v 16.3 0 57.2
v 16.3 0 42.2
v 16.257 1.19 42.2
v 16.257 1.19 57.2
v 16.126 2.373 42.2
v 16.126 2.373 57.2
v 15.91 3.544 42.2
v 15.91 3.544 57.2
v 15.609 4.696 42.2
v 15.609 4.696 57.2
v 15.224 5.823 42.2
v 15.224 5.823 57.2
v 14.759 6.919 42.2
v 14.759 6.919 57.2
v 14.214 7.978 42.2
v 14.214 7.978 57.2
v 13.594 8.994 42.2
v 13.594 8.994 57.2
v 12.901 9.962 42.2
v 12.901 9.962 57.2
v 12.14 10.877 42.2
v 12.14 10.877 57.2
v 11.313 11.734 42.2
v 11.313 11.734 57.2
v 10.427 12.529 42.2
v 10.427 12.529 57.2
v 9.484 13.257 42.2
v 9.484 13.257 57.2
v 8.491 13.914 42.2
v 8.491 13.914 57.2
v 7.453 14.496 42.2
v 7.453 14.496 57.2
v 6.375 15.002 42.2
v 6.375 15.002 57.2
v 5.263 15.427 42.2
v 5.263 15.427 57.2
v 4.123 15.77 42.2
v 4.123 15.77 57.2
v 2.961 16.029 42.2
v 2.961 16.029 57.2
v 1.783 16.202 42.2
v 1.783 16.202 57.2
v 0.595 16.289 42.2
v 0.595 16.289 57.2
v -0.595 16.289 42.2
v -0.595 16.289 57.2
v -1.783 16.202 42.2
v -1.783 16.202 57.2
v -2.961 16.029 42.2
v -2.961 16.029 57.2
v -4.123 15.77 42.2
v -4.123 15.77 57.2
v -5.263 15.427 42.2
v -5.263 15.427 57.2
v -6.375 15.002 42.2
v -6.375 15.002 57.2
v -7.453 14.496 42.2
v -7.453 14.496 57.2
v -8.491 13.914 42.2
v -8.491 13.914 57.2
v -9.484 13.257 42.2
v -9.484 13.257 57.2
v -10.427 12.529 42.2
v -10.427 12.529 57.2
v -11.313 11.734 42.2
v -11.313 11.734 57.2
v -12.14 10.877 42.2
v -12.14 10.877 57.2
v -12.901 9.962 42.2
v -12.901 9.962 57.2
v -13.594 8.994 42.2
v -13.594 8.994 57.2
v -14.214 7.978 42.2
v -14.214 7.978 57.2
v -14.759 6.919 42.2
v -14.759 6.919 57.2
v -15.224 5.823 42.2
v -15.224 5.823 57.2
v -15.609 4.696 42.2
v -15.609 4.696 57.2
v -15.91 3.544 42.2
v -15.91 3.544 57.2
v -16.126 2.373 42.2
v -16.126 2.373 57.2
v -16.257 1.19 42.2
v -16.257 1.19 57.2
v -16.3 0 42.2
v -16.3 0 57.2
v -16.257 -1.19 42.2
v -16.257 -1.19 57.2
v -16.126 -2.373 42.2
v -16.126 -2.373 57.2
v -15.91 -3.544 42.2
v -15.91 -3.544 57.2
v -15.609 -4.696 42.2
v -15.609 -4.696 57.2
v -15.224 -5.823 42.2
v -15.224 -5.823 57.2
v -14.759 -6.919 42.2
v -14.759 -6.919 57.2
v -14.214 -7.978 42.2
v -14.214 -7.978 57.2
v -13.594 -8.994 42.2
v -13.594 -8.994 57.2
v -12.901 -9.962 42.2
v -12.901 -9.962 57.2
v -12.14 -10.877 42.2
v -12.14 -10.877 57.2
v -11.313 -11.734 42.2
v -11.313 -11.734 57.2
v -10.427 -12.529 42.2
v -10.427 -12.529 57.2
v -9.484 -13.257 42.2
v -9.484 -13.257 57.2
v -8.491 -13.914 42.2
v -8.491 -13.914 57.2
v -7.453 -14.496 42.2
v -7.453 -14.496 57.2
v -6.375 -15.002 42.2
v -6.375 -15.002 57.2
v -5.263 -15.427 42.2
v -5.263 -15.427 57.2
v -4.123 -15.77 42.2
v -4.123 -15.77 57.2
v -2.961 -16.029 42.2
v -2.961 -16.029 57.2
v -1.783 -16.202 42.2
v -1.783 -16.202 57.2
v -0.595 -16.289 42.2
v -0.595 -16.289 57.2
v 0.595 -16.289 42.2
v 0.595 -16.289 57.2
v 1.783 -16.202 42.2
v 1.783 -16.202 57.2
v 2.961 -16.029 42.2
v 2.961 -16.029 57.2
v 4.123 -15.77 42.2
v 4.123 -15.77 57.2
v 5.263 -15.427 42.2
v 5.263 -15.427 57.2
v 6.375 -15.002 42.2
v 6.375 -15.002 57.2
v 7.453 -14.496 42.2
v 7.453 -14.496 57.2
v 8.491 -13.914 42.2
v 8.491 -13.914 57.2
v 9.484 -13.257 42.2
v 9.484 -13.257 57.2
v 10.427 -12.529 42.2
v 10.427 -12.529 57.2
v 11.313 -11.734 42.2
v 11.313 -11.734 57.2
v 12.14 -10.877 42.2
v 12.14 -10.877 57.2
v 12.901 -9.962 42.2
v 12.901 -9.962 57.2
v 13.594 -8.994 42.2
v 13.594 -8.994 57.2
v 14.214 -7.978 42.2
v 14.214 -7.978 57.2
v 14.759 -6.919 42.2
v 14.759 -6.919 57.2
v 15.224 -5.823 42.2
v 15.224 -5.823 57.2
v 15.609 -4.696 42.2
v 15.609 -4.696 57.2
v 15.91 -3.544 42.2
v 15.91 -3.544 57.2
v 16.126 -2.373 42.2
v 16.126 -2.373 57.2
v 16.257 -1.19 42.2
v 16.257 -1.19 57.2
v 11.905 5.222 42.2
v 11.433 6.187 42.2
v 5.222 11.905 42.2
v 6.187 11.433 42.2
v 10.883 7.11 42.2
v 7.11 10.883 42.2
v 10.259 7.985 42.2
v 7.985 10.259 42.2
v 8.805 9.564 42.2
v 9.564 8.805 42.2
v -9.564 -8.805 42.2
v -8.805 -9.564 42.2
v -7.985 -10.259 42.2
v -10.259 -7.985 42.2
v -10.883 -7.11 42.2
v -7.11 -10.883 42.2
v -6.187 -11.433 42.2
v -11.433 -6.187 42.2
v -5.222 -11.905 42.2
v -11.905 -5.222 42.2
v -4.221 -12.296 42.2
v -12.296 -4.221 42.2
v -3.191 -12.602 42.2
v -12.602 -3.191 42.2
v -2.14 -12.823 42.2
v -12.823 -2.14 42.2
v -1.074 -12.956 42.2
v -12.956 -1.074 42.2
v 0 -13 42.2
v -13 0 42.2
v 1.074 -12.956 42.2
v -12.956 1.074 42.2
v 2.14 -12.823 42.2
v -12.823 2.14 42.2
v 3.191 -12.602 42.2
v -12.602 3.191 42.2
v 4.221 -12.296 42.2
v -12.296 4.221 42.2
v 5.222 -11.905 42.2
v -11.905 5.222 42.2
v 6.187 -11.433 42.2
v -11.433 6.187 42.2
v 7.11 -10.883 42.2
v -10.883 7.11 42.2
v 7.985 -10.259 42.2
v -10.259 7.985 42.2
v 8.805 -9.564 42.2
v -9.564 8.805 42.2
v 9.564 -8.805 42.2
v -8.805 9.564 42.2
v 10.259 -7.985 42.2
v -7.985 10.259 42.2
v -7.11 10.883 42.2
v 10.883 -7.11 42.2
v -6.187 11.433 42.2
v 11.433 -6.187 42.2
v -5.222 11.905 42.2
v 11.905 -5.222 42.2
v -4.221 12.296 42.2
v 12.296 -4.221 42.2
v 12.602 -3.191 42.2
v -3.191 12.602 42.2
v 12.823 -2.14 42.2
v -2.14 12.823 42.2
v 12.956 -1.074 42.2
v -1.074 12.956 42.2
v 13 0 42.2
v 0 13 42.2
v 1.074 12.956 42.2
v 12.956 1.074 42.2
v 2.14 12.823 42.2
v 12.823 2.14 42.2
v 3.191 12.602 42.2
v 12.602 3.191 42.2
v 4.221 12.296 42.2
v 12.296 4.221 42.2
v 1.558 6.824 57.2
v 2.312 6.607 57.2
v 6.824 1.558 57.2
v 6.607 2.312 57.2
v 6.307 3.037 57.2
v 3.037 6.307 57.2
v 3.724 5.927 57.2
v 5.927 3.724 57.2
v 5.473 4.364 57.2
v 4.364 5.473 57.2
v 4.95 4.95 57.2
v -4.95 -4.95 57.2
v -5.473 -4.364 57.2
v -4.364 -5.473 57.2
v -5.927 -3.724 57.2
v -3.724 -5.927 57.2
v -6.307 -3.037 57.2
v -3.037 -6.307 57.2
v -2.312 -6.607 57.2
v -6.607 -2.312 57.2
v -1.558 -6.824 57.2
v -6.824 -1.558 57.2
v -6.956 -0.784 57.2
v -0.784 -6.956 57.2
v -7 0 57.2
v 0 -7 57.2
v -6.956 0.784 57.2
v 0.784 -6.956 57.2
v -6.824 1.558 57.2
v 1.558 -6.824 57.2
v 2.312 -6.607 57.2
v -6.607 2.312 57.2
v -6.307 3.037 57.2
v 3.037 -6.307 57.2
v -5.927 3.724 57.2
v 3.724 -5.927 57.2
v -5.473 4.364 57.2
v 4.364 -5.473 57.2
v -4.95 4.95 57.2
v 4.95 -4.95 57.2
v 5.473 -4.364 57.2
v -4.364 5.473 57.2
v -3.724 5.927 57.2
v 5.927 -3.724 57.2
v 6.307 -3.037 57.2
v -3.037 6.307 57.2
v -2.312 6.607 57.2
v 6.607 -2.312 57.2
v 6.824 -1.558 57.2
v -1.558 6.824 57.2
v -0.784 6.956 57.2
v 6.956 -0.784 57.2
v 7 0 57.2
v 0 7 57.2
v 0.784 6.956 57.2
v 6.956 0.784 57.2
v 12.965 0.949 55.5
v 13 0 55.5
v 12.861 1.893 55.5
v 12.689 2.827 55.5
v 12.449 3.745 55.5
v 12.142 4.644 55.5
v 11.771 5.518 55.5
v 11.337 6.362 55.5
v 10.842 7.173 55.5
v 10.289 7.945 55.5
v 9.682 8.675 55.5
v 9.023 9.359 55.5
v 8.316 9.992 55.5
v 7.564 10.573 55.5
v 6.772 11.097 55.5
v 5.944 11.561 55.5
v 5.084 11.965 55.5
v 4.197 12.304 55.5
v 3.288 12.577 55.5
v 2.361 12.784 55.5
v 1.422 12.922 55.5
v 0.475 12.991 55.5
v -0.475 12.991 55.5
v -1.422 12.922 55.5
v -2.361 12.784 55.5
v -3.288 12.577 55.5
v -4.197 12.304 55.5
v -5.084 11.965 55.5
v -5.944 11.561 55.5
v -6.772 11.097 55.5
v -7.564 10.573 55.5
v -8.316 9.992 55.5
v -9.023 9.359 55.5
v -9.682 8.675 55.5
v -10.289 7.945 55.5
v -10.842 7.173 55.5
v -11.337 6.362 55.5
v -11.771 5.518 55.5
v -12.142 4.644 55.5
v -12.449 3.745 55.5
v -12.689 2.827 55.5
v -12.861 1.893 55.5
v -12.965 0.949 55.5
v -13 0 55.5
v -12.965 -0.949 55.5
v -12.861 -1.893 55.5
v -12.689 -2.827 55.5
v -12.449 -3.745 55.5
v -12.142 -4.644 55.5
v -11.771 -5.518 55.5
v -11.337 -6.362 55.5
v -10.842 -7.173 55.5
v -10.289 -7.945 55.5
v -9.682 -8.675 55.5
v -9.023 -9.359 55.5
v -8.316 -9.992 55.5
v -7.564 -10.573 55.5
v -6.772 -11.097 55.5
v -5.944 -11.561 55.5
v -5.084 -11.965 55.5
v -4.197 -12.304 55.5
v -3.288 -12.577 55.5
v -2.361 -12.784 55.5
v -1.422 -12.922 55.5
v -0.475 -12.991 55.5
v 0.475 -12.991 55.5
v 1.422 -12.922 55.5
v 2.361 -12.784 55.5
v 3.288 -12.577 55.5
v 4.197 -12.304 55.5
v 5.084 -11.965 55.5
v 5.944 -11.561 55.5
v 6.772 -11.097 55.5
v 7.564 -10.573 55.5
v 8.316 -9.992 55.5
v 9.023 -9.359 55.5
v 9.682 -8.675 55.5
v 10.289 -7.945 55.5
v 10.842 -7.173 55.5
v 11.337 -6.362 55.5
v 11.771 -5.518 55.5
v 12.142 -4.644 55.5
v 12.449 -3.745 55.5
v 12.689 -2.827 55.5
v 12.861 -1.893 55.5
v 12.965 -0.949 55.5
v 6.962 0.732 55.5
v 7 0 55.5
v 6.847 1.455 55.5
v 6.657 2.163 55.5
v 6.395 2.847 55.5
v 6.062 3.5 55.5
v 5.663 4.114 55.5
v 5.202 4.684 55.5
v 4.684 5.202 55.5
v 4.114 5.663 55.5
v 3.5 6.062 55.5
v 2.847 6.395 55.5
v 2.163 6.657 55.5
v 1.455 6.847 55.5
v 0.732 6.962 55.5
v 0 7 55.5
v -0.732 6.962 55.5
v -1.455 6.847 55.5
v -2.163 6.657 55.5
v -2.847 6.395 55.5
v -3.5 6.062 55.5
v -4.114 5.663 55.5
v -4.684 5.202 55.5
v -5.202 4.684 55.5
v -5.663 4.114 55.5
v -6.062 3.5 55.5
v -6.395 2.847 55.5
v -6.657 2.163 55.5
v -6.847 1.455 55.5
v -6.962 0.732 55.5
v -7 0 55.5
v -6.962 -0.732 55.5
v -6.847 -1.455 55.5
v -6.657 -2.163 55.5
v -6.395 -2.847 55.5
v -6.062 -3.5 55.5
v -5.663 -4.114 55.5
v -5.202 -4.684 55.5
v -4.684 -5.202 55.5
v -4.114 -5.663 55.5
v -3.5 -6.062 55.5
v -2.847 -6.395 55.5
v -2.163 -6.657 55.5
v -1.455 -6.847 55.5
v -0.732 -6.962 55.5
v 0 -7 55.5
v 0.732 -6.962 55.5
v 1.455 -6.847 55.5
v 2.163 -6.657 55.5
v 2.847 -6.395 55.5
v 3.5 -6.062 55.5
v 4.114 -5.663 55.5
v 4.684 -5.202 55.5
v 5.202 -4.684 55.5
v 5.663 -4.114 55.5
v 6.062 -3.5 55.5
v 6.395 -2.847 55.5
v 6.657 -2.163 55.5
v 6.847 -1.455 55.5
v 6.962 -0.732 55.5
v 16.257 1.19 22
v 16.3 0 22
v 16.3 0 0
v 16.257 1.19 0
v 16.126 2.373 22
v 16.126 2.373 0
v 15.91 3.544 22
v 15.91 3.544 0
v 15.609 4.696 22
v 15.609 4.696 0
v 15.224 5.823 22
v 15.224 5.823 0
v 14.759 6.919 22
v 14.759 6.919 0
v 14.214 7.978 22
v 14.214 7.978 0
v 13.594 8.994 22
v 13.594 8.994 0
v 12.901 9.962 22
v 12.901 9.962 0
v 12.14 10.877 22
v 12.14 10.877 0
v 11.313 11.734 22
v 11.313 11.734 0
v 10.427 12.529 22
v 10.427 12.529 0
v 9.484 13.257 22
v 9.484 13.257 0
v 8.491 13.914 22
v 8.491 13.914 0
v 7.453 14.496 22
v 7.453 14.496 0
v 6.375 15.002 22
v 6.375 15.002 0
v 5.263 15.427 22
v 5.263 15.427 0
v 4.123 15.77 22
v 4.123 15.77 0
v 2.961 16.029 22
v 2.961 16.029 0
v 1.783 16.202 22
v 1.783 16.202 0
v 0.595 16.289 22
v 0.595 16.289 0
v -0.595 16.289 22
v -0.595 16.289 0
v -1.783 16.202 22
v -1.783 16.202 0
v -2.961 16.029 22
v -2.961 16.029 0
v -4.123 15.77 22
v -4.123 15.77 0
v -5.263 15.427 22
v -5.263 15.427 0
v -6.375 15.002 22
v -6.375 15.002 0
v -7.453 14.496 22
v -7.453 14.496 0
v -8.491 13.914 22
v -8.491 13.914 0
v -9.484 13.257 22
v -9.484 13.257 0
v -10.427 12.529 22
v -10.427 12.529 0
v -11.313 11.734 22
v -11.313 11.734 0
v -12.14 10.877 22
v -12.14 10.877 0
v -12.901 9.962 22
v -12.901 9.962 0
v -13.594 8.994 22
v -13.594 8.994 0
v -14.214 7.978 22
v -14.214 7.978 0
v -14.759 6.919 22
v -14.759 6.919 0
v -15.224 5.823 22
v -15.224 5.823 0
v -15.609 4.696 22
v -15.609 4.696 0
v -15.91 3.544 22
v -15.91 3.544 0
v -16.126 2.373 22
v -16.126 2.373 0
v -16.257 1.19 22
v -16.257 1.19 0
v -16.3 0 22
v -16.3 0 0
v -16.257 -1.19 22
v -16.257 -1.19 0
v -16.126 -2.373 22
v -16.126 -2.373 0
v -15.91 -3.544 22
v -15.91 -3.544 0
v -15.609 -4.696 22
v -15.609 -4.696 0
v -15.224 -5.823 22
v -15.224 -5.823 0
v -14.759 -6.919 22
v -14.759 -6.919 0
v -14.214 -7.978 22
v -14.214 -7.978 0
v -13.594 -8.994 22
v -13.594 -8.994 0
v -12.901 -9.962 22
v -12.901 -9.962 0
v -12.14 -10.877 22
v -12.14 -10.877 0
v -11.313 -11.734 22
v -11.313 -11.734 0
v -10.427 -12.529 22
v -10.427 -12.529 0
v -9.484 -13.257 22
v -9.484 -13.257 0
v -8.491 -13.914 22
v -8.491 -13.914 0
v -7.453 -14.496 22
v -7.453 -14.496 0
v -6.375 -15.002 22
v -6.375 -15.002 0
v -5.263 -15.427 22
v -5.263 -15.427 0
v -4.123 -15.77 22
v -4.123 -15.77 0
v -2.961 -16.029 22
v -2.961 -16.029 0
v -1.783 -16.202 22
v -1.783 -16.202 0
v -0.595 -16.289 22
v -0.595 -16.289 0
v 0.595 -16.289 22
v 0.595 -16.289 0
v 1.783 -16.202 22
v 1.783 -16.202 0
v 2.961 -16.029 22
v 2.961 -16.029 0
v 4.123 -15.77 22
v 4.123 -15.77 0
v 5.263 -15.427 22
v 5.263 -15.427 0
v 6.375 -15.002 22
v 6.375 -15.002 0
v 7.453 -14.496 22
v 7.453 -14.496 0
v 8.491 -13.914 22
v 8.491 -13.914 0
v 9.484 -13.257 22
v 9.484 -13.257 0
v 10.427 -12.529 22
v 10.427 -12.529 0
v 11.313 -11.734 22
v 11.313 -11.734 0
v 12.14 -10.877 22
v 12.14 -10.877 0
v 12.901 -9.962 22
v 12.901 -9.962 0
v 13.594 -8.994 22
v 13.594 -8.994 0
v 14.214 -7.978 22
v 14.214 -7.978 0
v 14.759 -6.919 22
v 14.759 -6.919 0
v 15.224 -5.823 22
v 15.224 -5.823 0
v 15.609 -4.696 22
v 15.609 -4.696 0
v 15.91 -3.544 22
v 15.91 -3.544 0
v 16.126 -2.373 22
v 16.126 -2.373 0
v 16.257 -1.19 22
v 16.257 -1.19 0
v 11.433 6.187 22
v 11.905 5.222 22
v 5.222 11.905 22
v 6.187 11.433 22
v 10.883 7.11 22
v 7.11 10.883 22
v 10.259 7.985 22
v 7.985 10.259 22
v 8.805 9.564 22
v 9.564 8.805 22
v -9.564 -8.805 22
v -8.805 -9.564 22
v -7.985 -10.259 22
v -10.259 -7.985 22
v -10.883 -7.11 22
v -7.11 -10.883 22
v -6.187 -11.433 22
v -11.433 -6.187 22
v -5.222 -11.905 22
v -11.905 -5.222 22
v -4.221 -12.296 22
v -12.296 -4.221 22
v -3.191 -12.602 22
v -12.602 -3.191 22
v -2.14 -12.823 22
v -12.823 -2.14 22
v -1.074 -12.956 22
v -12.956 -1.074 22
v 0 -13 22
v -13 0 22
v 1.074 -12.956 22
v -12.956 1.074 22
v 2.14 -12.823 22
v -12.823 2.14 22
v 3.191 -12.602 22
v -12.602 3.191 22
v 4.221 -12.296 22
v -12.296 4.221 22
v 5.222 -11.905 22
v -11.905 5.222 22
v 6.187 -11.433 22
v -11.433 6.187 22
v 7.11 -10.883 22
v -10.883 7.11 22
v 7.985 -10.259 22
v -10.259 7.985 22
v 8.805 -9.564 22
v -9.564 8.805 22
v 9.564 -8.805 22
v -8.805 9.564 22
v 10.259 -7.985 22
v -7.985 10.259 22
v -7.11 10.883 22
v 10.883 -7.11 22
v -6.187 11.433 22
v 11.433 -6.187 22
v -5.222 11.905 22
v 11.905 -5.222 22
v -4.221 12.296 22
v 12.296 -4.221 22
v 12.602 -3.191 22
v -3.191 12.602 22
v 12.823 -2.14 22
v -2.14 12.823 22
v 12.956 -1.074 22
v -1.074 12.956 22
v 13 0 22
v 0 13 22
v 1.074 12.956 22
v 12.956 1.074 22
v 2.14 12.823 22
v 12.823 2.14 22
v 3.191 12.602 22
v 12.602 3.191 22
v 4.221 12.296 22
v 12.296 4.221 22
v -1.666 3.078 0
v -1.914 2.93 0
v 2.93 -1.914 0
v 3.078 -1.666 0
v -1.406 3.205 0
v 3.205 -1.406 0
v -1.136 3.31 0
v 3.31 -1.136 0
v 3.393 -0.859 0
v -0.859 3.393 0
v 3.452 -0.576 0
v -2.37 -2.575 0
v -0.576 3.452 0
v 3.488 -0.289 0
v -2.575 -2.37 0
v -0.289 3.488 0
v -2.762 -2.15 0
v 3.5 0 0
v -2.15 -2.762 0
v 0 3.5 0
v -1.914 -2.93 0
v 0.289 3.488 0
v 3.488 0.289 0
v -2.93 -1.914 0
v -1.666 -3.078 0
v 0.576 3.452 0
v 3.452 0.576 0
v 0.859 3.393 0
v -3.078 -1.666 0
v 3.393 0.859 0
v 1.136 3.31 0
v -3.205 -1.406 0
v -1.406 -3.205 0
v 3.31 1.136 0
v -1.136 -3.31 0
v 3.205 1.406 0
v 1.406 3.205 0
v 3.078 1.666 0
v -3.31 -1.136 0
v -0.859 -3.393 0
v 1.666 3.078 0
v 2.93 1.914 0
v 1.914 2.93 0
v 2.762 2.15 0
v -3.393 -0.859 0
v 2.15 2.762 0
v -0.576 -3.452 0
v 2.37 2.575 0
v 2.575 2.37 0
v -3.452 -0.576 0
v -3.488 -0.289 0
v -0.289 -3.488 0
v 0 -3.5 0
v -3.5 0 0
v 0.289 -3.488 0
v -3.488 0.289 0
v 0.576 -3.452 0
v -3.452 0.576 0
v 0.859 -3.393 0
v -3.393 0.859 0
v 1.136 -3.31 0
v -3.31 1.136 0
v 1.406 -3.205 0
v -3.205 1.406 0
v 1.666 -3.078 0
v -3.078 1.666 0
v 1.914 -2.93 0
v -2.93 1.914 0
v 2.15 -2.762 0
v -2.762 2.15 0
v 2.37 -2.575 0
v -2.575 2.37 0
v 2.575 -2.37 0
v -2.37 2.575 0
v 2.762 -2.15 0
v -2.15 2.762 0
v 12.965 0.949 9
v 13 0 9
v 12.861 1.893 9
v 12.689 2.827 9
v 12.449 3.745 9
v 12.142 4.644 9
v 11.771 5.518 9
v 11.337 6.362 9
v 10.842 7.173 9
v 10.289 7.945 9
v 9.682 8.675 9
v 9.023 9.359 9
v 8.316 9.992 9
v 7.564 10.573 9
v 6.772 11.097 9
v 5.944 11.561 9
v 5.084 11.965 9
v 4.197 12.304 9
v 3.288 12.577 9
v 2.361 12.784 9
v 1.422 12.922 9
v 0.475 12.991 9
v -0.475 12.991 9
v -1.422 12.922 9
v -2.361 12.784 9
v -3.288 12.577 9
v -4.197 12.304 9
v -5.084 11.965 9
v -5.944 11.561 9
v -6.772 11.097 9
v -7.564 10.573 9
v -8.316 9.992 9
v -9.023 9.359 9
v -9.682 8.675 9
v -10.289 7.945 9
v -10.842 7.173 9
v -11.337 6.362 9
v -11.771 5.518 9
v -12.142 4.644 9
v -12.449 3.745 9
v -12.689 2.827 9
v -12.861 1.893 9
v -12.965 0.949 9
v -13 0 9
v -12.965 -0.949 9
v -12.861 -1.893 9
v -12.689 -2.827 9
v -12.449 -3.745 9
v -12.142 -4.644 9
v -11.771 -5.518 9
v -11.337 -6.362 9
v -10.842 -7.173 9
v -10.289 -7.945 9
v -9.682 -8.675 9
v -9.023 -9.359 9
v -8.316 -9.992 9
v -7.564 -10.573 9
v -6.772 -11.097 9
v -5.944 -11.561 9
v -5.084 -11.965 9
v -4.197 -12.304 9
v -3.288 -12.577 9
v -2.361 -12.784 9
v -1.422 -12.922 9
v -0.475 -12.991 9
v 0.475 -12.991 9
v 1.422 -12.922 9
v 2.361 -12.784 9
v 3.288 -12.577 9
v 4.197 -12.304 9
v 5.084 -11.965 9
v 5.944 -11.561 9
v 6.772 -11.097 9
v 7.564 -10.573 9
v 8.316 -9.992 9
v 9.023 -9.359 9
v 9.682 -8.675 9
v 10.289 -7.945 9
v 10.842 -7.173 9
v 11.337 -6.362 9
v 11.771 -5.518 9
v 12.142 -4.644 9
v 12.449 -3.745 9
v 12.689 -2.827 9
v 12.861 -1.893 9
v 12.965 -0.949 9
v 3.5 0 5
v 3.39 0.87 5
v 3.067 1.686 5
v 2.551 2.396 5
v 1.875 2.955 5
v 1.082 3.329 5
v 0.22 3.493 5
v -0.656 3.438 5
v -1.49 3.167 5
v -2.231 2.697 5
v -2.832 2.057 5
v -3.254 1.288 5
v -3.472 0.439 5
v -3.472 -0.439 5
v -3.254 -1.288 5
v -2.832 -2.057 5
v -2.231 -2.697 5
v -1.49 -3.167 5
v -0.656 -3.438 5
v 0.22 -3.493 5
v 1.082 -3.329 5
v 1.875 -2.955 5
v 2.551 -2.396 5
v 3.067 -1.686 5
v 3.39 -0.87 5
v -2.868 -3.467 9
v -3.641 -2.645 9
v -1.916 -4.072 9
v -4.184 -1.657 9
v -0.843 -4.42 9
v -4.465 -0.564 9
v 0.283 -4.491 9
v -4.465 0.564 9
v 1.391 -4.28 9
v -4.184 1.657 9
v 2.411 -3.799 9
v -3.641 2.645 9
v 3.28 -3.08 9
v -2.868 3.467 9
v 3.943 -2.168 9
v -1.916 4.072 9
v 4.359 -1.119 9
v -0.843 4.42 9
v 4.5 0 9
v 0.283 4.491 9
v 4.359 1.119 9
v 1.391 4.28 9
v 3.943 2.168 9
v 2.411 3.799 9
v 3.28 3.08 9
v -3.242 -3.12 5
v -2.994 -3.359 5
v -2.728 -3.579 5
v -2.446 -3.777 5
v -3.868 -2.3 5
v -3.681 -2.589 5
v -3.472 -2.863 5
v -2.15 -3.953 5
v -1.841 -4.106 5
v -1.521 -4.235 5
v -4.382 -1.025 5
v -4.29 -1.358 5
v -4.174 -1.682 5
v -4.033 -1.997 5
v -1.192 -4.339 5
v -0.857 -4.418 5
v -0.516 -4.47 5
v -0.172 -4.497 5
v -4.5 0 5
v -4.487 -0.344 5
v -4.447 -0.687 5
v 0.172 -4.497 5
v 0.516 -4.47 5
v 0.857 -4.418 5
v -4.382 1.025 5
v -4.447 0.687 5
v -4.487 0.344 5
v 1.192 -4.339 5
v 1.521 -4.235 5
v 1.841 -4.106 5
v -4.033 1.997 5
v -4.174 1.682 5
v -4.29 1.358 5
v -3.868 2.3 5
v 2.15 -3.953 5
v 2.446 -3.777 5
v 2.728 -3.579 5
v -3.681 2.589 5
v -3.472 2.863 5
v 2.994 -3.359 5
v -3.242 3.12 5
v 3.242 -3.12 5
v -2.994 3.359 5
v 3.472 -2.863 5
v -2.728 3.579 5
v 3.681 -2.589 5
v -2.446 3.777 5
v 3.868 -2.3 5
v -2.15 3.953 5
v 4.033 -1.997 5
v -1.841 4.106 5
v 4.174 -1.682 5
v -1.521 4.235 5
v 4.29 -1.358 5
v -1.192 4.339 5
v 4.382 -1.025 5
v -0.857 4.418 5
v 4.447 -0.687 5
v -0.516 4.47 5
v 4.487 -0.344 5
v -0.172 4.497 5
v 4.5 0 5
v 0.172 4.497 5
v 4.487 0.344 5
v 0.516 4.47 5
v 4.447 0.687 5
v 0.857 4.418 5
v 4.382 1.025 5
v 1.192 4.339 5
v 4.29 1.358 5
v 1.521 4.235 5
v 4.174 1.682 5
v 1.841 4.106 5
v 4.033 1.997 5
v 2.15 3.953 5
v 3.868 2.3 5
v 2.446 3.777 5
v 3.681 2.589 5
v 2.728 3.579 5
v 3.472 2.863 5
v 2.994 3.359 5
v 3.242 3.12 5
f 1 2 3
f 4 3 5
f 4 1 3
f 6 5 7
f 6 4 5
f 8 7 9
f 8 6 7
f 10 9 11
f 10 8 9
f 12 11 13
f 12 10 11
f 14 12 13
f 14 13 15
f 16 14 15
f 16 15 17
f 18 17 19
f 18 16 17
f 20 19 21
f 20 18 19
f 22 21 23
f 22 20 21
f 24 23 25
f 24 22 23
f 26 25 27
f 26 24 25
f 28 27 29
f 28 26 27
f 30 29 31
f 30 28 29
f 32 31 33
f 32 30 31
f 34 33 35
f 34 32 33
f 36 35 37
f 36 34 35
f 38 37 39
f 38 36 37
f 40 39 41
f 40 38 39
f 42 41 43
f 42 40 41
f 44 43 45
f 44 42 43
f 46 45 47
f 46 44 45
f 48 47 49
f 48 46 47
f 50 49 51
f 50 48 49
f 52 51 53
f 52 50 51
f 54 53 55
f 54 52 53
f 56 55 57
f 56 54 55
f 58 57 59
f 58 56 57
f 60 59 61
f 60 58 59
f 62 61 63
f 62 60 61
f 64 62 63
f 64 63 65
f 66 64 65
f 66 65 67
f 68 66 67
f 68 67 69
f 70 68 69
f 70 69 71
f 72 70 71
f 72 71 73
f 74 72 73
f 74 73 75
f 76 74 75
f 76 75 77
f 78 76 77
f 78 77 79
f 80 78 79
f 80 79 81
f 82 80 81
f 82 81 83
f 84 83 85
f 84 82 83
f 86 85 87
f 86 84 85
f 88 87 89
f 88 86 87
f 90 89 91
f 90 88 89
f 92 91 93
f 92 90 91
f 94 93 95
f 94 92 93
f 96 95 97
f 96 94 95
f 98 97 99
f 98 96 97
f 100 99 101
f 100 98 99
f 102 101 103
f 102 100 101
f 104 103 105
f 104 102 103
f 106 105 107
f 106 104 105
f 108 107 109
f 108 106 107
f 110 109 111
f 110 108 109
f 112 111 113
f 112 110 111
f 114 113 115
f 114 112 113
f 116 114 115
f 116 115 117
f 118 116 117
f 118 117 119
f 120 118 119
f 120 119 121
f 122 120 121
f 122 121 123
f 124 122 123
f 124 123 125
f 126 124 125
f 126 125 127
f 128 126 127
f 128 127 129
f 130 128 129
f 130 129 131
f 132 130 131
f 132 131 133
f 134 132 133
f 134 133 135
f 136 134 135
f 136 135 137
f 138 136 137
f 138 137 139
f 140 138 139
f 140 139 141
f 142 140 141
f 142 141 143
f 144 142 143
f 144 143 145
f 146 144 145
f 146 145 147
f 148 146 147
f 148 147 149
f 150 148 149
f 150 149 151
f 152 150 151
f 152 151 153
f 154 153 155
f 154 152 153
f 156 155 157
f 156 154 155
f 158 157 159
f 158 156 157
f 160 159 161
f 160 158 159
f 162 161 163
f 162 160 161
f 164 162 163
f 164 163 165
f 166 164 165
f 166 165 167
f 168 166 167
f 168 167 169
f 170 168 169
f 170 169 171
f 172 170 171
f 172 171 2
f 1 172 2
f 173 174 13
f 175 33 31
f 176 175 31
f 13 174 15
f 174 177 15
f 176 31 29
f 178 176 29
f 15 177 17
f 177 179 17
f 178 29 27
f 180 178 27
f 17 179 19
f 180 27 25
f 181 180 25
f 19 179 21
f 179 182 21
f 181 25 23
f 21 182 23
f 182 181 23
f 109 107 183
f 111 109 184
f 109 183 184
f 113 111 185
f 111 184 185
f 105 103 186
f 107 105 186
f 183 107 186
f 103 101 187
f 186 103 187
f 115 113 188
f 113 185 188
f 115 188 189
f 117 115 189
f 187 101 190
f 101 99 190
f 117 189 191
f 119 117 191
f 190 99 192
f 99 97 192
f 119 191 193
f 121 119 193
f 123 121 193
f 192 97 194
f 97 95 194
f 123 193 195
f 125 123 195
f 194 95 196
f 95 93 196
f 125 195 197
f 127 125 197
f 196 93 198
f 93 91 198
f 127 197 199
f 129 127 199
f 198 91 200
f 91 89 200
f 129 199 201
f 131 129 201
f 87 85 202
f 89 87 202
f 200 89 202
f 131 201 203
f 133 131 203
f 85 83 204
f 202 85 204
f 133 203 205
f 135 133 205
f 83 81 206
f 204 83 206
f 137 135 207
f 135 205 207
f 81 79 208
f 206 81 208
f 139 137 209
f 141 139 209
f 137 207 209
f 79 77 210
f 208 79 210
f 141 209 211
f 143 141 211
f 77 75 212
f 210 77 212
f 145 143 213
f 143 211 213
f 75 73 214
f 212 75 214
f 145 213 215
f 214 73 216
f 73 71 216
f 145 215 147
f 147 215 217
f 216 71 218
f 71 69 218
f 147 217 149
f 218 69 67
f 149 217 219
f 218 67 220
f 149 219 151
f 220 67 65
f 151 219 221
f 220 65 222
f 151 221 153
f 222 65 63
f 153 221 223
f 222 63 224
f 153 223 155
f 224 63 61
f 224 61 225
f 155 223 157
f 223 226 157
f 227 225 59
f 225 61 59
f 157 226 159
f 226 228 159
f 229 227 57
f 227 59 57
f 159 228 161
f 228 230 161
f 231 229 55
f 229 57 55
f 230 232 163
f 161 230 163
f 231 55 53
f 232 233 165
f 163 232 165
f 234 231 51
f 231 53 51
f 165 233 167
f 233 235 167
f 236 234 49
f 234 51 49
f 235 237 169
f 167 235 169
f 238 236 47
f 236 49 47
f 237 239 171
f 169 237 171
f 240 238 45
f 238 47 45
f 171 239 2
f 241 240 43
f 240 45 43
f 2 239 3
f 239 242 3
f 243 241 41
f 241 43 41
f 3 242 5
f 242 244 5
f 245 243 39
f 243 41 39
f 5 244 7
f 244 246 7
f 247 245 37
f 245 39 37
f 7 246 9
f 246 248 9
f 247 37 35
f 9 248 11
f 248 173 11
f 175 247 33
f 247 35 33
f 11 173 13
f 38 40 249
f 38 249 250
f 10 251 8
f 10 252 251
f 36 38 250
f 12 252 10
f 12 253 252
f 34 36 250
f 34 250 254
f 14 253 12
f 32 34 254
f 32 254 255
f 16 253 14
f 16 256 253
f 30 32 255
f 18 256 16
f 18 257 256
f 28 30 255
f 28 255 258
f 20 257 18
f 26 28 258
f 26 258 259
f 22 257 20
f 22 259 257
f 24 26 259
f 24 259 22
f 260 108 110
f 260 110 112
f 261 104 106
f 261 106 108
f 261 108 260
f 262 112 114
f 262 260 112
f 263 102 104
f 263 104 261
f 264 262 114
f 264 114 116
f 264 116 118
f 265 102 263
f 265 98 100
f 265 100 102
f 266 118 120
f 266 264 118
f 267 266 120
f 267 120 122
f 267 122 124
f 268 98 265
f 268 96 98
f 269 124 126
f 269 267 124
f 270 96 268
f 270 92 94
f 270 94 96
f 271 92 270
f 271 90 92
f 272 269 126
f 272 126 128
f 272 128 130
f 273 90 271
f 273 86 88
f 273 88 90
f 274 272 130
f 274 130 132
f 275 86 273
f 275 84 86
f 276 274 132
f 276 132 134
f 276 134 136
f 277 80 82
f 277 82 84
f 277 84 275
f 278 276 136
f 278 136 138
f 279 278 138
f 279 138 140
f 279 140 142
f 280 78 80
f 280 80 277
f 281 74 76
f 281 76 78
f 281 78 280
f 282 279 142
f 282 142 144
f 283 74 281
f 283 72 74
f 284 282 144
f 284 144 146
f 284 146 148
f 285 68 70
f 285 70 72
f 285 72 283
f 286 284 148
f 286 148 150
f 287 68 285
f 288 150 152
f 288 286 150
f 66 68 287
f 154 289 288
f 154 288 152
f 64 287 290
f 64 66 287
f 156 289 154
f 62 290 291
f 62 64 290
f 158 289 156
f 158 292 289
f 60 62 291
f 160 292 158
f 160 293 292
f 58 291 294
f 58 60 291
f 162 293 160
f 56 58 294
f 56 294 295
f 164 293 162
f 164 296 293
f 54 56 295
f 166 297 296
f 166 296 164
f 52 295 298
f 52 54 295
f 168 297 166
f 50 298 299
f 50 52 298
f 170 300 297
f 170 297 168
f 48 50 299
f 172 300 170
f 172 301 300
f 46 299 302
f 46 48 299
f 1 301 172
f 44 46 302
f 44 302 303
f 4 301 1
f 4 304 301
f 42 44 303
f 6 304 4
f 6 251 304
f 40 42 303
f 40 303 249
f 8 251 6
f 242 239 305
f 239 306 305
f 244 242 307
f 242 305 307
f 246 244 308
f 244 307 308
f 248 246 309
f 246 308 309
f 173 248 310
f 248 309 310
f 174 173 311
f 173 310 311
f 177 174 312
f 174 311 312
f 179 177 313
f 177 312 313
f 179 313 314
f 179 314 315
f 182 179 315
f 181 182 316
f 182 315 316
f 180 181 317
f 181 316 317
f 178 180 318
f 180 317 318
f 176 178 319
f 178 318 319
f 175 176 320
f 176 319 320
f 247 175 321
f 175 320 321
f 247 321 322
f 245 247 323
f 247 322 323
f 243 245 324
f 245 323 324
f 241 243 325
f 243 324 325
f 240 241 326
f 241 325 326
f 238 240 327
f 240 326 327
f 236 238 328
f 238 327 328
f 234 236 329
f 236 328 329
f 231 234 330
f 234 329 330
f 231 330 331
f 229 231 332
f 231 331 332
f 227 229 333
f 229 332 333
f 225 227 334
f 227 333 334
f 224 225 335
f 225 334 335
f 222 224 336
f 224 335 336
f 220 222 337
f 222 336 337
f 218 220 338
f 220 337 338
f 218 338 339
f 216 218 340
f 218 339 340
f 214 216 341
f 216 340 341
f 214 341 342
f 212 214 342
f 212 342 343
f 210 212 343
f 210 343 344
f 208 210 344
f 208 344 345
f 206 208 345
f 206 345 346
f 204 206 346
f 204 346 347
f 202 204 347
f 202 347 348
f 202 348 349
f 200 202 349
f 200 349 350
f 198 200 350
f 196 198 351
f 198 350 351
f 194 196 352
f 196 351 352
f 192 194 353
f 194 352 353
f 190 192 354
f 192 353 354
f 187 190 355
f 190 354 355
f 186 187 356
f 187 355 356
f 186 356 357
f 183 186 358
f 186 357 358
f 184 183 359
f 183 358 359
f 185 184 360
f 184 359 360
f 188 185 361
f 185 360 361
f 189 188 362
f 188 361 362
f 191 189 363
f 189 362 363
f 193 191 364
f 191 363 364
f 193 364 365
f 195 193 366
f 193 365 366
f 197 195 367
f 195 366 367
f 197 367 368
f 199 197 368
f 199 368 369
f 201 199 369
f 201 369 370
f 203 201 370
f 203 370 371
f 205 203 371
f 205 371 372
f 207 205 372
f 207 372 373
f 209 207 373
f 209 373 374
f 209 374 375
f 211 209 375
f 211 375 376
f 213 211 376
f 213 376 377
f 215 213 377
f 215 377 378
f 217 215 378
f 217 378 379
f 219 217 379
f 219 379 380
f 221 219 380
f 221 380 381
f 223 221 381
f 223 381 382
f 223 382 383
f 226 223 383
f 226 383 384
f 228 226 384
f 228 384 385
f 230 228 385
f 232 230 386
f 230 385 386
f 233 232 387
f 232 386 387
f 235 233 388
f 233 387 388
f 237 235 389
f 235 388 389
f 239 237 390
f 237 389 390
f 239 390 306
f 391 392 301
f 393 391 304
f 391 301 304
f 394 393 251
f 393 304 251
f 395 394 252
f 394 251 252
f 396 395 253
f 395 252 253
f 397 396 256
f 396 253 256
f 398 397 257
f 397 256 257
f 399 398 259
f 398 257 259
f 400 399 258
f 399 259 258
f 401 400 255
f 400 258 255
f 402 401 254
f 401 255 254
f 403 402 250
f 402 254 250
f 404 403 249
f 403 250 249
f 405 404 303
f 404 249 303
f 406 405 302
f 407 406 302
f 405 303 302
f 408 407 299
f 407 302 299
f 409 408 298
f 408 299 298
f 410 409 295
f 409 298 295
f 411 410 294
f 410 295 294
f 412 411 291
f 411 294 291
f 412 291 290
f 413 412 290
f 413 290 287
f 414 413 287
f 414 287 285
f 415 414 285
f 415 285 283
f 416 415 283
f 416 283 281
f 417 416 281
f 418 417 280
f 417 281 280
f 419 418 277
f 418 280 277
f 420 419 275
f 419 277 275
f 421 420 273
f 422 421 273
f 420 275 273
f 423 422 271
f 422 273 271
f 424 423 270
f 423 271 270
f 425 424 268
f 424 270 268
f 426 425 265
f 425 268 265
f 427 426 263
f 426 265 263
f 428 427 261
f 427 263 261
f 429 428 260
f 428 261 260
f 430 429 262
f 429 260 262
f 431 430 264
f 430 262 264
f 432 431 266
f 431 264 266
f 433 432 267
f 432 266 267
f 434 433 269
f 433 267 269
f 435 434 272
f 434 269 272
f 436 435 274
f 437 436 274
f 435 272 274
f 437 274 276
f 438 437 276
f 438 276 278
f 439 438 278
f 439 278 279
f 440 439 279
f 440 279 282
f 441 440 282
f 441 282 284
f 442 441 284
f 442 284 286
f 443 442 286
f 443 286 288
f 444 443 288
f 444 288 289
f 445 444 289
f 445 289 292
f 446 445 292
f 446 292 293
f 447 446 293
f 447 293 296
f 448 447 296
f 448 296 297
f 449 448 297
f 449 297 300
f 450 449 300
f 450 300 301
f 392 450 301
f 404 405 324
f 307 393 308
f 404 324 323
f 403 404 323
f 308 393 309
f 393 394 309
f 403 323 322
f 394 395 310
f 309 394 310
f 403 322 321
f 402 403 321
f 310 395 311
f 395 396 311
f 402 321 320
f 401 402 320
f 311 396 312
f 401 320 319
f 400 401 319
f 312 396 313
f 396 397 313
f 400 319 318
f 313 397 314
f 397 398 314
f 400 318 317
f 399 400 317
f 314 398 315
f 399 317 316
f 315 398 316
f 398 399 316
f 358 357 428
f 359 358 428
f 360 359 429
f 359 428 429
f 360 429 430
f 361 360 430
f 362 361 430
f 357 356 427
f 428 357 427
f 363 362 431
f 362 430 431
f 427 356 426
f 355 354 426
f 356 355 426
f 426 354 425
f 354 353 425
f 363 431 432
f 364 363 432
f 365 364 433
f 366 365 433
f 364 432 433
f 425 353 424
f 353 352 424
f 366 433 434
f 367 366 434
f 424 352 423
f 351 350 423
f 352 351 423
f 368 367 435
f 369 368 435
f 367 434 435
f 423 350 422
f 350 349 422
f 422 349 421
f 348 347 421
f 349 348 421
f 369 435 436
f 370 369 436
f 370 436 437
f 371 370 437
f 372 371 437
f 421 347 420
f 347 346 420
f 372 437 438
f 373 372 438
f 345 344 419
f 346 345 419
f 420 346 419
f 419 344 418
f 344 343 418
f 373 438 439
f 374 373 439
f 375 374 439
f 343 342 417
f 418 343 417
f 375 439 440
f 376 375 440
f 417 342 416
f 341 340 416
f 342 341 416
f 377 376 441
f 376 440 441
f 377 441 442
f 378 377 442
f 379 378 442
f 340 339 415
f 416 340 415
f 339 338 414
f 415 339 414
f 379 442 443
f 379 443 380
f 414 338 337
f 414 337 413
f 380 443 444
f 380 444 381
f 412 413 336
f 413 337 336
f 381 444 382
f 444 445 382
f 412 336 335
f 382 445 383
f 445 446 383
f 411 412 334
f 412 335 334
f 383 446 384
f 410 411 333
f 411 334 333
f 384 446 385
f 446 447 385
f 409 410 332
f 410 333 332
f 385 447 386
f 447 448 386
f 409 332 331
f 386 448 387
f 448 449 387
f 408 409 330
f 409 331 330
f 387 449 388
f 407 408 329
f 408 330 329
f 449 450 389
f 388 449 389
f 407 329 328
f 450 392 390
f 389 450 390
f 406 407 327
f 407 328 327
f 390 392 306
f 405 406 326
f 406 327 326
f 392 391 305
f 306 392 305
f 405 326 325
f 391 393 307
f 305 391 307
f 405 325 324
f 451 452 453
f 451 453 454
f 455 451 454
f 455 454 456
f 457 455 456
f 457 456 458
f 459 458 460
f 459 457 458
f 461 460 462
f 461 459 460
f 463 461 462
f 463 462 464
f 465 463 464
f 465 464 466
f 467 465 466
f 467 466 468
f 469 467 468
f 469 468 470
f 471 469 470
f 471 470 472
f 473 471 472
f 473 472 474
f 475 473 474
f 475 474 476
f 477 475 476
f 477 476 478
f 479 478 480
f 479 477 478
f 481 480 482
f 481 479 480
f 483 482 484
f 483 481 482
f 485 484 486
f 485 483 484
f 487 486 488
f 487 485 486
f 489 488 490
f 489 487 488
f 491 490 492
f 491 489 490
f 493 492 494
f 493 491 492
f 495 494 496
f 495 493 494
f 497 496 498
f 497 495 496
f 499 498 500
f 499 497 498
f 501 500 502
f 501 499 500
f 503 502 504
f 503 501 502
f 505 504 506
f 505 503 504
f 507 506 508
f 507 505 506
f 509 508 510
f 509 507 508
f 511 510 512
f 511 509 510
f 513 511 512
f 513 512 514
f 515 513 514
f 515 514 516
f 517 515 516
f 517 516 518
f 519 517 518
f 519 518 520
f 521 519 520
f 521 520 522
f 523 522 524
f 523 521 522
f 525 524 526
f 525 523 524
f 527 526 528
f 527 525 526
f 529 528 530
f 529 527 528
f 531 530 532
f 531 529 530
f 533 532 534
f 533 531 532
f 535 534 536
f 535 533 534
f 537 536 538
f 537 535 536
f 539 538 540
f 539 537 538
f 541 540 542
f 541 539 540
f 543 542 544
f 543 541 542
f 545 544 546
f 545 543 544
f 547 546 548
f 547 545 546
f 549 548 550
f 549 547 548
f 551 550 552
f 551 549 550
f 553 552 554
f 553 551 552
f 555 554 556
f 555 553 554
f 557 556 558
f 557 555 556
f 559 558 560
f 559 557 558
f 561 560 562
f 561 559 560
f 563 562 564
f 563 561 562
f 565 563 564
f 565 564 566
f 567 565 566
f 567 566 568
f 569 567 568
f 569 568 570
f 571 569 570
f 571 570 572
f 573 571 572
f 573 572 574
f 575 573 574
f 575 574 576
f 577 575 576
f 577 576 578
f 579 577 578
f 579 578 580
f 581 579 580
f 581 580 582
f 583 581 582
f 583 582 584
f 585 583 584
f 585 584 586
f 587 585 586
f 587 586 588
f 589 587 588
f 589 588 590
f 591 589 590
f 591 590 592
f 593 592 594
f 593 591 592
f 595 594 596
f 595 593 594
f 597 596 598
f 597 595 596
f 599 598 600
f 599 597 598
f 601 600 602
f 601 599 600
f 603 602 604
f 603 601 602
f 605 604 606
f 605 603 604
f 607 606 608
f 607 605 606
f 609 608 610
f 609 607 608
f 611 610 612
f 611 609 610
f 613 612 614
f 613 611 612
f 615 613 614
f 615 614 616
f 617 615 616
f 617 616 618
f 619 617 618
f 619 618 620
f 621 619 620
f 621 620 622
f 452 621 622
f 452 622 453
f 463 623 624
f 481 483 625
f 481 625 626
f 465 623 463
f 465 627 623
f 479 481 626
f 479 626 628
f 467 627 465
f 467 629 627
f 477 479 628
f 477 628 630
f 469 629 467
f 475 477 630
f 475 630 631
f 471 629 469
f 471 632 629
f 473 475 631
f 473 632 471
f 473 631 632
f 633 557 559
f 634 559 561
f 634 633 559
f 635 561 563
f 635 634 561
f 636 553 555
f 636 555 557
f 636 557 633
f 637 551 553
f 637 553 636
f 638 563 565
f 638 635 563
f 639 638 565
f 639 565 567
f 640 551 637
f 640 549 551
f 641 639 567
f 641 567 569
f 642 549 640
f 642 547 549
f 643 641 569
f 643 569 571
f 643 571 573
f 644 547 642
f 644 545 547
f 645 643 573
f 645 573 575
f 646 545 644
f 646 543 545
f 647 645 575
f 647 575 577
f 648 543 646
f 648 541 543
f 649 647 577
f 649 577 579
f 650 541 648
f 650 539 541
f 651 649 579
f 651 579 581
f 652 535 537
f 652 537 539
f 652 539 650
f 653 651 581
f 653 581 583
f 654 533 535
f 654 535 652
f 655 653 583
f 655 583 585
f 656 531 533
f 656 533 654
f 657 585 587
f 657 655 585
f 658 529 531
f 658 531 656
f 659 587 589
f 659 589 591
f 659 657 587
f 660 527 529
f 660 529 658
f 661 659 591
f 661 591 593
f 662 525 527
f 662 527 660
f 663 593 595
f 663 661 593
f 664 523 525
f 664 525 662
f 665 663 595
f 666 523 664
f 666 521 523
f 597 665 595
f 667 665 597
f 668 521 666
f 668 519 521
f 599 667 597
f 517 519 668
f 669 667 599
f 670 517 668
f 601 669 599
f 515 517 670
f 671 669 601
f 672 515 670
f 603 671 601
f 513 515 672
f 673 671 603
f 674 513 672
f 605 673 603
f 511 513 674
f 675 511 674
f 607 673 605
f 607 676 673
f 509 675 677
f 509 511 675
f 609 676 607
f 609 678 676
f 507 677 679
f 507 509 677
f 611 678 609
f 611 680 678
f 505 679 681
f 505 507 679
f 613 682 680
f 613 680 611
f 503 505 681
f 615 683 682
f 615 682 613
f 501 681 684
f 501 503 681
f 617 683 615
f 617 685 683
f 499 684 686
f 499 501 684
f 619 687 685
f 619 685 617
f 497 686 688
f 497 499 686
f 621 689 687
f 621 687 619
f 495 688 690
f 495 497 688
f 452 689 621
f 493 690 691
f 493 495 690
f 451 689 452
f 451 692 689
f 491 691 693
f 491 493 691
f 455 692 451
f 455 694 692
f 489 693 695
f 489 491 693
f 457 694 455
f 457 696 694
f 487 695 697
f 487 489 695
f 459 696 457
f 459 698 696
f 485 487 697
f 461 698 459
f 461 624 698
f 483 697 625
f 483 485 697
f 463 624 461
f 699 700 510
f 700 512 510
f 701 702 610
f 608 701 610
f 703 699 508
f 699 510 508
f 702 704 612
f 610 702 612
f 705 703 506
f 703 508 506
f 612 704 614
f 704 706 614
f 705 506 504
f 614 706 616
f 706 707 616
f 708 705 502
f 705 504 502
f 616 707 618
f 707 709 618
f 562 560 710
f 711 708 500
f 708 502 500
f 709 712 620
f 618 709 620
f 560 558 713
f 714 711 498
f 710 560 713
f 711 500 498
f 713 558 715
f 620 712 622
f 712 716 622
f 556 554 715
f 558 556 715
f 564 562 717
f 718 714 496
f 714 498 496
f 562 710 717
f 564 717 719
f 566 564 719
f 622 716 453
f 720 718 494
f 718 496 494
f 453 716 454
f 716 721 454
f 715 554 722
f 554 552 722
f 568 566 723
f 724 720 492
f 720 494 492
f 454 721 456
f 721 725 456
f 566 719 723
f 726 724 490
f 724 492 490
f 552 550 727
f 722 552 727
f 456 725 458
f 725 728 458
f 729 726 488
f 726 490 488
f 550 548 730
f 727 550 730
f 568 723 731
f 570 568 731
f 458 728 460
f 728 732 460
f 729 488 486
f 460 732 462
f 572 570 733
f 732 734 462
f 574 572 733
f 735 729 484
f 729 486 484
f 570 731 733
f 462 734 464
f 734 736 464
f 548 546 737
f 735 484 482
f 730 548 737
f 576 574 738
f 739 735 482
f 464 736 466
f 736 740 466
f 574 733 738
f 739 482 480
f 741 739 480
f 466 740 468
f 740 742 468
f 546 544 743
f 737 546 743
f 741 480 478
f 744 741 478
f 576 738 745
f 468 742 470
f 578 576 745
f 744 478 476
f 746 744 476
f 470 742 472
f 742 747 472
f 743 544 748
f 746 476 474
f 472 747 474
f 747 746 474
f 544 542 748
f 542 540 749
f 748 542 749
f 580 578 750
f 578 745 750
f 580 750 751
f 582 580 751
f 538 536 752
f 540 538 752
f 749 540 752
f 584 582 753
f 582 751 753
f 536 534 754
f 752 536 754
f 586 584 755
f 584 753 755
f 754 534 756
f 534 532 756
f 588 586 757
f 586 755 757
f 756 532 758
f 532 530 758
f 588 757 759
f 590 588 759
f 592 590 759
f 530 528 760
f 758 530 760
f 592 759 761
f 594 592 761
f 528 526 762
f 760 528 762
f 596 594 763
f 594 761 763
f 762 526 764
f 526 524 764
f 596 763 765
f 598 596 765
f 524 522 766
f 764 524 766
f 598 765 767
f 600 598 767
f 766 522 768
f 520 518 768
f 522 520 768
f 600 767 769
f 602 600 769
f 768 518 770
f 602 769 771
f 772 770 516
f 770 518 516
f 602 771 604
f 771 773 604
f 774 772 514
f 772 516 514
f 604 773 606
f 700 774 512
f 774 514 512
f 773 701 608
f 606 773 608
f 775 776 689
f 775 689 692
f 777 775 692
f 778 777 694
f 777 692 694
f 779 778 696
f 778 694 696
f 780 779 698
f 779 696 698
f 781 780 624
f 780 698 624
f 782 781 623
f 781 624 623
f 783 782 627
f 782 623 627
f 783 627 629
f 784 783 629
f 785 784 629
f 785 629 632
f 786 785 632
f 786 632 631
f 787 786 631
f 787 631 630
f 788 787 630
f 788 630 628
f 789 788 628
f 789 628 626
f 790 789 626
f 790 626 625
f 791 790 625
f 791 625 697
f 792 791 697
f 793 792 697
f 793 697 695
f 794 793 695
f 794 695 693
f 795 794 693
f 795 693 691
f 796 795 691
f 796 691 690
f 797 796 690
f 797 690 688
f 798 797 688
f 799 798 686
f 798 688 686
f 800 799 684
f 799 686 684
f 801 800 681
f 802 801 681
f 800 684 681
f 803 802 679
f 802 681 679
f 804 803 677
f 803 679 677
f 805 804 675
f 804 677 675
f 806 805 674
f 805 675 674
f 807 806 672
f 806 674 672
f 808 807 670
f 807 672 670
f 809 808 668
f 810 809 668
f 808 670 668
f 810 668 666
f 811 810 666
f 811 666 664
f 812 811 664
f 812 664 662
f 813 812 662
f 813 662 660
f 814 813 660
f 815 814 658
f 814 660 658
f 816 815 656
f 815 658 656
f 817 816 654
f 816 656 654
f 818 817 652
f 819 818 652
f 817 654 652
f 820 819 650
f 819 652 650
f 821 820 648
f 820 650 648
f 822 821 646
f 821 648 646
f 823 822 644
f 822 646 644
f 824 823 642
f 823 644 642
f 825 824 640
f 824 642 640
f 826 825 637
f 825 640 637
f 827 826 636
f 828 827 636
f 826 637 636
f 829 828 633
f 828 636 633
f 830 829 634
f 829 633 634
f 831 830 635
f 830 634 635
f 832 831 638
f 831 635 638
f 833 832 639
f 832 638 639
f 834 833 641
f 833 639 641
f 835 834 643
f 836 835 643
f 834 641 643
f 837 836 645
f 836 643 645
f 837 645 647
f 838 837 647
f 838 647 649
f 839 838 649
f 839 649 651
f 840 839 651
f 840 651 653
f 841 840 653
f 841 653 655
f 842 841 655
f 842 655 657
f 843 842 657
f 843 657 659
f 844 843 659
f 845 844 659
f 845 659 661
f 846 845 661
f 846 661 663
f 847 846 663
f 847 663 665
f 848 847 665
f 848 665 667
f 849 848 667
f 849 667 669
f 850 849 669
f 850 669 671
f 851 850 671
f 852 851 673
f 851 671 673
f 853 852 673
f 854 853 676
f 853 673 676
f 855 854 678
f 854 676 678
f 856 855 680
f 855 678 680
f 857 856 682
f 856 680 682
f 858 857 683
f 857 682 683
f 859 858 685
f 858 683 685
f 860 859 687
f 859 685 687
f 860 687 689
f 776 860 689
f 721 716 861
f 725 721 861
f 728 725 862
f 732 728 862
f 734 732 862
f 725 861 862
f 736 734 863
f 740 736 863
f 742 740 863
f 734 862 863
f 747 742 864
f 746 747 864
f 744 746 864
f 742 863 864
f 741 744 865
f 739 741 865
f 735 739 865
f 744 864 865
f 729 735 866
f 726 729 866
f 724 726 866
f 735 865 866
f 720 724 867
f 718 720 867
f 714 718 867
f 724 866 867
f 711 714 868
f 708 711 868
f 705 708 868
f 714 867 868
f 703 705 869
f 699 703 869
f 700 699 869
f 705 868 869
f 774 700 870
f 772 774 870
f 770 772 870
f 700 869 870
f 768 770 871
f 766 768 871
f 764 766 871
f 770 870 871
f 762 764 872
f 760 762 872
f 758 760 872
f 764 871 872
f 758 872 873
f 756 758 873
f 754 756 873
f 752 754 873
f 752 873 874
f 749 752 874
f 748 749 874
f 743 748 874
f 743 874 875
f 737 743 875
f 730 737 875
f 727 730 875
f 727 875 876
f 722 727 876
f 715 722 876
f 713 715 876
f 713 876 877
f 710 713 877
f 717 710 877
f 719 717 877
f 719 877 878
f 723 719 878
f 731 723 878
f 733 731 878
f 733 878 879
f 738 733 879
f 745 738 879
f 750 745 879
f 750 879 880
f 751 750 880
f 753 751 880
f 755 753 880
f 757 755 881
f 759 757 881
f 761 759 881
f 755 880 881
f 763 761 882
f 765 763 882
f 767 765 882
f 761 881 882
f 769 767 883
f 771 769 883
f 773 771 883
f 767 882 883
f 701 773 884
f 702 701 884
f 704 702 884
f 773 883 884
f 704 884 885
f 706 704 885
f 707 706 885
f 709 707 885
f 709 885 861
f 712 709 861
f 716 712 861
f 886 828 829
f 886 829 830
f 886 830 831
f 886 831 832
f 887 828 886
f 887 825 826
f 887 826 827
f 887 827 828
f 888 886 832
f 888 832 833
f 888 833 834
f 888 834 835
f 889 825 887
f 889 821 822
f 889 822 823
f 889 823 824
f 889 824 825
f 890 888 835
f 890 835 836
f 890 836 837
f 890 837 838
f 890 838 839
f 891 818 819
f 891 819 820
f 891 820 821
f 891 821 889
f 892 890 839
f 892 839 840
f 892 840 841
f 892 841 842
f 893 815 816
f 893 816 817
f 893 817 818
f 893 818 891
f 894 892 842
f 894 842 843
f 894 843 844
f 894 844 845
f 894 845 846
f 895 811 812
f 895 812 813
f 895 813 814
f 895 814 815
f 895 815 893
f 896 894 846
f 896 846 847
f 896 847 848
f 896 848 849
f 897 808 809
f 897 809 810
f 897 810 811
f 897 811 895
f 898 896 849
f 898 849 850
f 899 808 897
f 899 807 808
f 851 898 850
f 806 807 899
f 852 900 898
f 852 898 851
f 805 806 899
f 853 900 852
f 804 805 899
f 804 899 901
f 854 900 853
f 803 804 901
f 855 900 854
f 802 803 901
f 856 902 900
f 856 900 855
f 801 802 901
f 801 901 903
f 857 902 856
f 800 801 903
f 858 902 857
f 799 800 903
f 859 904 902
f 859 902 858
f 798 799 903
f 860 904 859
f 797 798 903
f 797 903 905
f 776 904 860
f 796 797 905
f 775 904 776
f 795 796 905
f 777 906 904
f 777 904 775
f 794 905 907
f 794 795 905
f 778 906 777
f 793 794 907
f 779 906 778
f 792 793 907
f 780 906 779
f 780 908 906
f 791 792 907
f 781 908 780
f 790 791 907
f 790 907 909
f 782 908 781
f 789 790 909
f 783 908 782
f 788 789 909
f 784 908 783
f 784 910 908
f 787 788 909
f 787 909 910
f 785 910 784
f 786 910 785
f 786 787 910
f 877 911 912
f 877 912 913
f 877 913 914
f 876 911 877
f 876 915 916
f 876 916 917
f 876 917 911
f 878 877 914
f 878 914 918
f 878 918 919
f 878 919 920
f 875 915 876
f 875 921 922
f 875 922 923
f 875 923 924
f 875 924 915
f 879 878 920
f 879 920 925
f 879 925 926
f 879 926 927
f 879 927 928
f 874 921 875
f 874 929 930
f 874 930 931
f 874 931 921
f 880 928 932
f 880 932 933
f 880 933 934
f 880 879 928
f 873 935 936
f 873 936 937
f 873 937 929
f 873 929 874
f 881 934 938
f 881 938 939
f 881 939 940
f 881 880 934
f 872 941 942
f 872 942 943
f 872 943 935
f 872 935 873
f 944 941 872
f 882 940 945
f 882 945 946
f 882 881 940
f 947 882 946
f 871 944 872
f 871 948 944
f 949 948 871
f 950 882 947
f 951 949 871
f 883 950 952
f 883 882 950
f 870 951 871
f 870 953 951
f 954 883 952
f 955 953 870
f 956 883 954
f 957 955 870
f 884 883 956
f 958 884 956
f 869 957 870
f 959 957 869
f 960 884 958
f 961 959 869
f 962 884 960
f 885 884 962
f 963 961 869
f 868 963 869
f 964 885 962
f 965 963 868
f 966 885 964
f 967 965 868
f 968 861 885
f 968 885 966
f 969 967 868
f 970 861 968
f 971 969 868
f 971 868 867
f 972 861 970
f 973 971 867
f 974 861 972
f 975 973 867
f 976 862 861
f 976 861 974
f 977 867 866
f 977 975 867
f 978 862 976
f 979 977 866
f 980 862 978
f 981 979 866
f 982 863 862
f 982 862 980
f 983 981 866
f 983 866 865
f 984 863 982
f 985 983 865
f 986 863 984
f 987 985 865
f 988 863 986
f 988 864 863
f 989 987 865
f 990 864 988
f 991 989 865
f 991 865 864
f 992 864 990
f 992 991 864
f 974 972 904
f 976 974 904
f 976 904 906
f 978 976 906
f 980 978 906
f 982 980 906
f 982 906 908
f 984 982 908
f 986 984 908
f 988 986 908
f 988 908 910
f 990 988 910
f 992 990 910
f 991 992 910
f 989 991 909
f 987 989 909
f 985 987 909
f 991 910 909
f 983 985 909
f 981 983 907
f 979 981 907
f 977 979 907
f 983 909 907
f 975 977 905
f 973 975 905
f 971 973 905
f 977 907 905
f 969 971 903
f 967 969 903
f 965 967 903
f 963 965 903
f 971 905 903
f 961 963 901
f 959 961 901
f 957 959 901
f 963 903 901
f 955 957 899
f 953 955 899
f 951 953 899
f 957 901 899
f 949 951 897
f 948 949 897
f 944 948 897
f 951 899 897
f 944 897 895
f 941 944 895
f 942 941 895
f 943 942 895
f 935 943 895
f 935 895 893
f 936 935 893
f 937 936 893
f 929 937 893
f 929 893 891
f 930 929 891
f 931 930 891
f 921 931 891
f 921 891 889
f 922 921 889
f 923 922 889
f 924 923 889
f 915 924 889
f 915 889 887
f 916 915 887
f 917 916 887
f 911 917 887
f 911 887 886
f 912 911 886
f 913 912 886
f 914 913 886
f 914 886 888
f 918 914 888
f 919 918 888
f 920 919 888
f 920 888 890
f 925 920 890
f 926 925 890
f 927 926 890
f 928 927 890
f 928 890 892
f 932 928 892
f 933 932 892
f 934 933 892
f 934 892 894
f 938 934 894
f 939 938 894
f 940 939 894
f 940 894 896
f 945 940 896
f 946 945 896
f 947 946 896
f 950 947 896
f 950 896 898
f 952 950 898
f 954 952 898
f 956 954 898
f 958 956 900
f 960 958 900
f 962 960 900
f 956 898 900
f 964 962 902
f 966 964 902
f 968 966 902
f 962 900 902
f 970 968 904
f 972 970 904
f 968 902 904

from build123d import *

# Parameters (mm, degrees)
CYLINDER003_R     = 20
CYLINDER003_DEPTH = 20.2
CYLINDER004_R     = 7
CYLINDER004_DEPTH = 20
CYLINDER002_R     = 3.5
CYLINDER002_DEPTH = 20
CYLINDER005_R     = 4.5
CYLINDER005_DEPTH = 20
CYLINDER001_R     = 13
CYLINDER001_DEPTH = 46.5
CYLINDER_R        = 16.3
CYLINDER_DEPTH    = 57.2


with BuildPart() as cylinder003:
    # Cylinder003 → Cylinder003 (new body)
    with BuildSketch(Plane.XY.offset(22)):
        Circle(CYLINDER003_R)
    extrude(amount=CYLINDER003_DEPTH)


with BuildPart() as cylinder004:
    # Cylinder004 → Cylinder004 (new body)
    with BuildSketch(Plane.XY.offset(38)):
        Circle(CYLINDER004_R)
    extrude(amount=CYLINDER004_DEPTH)


with BuildPart() as cylinder002:
    # Cylinder002 → Cylinder002 (new body)
    with BuildSketch(Plane.XY):
        Circle(CYLINDER002_R)
    extrude(amount=CYLINDER002_DEPTH)


with BuildPart() as cylinder005:
    # Cylinder005 → Cylinder005 (new body)
    with BuildSketch(Plane.XY.offset(5)):
        Circle(CYLINDER005_R)
    extrude(amount=CYLINDER005_DEPTH)


with BuildPart() as fusion:
    # Cylinder001 → Cylinder001 (new body)
    with BuildSketch(Plane.XY.offset(9)):
        Circle(CYLINDER001_R)
    extrude(amount=CYLINDER001_DEPTH)

    # Fusion: union Cylinder004, Cylinder002, Cylinder005
    add(cylinder004.part)
    add(cylinder002.part)
    add(cylinder005.part)


with BuildPart() as cut001:
    # Cylinder → Cylinder (new body)
    with BuildSketch(Plane.XY):
        Circle(CYLINDER_R)
    extrude(amount=CYLINDER_DEPTH)

    # Cut: cut Fusion
    add(fusion.part, mode=Mode.SUBTRACT)

    # Cut001: cut Cylinder003
    add(cylinder003.part, mode=Mode.SUBTRACT)


solid = cut001.part
